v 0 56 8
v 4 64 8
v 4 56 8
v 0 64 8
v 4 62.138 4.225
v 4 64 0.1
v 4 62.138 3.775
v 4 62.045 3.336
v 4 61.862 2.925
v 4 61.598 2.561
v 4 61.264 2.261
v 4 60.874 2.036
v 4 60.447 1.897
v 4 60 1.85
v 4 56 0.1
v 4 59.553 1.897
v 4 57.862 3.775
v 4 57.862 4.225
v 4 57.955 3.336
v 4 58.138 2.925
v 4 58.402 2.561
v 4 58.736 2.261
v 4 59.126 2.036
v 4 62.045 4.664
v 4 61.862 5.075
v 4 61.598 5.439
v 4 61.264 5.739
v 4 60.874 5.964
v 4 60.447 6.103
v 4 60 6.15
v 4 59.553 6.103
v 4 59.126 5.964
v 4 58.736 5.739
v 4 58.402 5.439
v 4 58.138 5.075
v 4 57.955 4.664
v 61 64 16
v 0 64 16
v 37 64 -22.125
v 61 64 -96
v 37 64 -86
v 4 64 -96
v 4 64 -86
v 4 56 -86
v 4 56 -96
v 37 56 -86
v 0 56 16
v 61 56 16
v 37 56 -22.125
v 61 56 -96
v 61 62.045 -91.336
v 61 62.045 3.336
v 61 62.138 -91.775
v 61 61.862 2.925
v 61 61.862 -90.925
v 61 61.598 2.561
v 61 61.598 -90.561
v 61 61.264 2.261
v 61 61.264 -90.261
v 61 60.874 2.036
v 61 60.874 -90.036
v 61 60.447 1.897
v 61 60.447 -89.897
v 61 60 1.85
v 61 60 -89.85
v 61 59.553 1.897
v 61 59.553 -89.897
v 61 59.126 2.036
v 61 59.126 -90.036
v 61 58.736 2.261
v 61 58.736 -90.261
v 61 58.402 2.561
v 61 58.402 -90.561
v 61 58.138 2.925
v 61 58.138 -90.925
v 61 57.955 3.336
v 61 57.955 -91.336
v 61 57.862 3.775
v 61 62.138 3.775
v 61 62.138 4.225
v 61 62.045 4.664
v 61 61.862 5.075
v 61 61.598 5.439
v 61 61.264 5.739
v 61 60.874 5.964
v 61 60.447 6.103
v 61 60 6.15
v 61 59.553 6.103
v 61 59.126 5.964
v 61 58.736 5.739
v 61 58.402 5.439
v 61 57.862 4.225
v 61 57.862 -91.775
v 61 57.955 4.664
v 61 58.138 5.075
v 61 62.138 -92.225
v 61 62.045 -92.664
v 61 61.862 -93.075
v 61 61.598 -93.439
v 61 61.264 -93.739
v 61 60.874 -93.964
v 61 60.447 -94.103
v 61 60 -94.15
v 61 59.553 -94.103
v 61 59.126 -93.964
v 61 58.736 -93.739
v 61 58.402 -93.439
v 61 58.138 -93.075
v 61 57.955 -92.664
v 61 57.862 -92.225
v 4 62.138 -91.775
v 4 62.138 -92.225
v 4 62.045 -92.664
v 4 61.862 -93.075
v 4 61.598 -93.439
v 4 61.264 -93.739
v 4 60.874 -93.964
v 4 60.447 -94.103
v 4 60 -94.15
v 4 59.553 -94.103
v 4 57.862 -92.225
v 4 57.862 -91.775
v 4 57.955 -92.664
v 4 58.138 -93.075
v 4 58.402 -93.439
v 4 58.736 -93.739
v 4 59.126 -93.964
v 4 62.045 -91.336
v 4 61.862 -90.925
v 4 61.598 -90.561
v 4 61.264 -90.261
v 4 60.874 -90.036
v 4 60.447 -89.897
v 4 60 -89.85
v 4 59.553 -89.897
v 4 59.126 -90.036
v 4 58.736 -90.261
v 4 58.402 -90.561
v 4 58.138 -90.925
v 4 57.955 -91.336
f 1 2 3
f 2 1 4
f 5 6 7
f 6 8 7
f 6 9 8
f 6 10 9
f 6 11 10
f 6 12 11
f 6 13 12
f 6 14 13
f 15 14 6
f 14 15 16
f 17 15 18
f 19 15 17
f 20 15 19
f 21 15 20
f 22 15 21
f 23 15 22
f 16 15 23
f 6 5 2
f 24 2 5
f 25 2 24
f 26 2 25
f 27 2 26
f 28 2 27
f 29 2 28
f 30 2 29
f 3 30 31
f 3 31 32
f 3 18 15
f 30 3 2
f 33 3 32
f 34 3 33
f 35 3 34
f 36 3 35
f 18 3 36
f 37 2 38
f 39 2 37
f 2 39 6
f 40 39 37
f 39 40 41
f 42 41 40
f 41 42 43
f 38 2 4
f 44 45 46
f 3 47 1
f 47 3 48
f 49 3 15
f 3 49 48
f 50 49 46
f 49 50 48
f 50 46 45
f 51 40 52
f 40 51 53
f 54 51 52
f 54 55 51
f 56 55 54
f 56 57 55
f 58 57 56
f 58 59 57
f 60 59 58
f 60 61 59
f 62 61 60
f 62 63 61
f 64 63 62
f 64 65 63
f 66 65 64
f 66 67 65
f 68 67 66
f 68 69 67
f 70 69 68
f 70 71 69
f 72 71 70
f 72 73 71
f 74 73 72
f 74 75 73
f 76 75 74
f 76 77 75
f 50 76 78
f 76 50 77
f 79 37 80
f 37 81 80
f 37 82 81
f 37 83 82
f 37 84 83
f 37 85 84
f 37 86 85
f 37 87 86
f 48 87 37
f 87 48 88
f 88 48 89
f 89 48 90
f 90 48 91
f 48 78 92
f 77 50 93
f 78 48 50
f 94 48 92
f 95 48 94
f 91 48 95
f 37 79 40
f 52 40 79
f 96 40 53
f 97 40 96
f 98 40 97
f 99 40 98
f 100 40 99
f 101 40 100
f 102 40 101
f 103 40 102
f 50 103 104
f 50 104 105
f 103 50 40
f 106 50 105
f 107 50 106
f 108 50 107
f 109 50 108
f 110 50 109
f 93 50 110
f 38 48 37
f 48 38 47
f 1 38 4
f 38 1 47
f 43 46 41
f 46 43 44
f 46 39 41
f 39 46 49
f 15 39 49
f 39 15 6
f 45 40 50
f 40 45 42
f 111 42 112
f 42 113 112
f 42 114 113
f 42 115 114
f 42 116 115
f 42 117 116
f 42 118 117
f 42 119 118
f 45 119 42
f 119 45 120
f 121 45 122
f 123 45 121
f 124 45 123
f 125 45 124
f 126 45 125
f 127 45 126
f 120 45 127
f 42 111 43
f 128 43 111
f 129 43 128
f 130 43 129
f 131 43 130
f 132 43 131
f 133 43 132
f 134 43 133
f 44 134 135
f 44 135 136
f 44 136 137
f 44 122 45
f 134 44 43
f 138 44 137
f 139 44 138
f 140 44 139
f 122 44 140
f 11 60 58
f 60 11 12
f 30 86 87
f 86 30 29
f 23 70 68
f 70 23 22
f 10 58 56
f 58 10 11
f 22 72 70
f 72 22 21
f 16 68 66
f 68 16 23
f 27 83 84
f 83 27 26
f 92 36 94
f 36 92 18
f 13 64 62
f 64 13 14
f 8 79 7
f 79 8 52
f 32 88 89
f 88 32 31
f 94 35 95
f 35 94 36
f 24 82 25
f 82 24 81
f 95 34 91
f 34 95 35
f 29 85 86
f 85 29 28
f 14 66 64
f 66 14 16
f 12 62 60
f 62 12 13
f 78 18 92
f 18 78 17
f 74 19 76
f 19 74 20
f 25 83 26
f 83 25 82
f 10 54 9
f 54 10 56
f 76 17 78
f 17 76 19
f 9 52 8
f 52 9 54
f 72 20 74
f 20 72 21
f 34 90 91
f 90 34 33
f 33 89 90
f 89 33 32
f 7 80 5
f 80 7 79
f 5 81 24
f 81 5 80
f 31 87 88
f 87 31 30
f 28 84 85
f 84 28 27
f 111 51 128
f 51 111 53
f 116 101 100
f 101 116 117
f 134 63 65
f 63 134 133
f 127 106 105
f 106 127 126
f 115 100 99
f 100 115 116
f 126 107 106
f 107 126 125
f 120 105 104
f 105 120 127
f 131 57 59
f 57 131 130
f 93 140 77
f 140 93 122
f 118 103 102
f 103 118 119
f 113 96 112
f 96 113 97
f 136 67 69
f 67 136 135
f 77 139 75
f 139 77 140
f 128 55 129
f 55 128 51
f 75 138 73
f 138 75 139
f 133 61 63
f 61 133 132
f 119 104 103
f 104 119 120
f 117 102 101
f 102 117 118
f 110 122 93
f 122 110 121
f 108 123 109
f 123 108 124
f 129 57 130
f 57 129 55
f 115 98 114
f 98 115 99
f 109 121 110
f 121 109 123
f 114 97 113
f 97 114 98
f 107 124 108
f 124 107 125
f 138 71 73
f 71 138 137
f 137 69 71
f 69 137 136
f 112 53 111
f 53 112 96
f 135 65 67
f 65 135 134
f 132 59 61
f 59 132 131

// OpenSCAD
difference() {
union() {
    // right top
    translate([4,56,.1])
    cube([60,8,7.9]);
    
    translate([0,56,8])
    cube([61,8,8]);
    
    // right long side
    translate([37,56,-86])
    cube([24,8,90]);

    // right angled side
    translate([4,56,.1])
    rotate([0,33.96,0])
    cube([40,8,8]);
    
    translate([15,56,.1])
    rotate([0,33.96,0])
    cube([30,8,15]);

    // extend the right bottom
    translate([4,56,-96])
    cube([61,8,10]);
    
}
    // top right hole
    translate([-4,60,4])
    rotate([0,90,0])
    cylinder(r=2.15,90, $fn=30);

    // bottom right hole
    translate([-4,60,-92])
    rotate([0,90,0])
    cylinder(r=2.15,90, $fn=30);

    // front clean up
    translate([61,20,-100])
    cube([8,50,120]);
}
